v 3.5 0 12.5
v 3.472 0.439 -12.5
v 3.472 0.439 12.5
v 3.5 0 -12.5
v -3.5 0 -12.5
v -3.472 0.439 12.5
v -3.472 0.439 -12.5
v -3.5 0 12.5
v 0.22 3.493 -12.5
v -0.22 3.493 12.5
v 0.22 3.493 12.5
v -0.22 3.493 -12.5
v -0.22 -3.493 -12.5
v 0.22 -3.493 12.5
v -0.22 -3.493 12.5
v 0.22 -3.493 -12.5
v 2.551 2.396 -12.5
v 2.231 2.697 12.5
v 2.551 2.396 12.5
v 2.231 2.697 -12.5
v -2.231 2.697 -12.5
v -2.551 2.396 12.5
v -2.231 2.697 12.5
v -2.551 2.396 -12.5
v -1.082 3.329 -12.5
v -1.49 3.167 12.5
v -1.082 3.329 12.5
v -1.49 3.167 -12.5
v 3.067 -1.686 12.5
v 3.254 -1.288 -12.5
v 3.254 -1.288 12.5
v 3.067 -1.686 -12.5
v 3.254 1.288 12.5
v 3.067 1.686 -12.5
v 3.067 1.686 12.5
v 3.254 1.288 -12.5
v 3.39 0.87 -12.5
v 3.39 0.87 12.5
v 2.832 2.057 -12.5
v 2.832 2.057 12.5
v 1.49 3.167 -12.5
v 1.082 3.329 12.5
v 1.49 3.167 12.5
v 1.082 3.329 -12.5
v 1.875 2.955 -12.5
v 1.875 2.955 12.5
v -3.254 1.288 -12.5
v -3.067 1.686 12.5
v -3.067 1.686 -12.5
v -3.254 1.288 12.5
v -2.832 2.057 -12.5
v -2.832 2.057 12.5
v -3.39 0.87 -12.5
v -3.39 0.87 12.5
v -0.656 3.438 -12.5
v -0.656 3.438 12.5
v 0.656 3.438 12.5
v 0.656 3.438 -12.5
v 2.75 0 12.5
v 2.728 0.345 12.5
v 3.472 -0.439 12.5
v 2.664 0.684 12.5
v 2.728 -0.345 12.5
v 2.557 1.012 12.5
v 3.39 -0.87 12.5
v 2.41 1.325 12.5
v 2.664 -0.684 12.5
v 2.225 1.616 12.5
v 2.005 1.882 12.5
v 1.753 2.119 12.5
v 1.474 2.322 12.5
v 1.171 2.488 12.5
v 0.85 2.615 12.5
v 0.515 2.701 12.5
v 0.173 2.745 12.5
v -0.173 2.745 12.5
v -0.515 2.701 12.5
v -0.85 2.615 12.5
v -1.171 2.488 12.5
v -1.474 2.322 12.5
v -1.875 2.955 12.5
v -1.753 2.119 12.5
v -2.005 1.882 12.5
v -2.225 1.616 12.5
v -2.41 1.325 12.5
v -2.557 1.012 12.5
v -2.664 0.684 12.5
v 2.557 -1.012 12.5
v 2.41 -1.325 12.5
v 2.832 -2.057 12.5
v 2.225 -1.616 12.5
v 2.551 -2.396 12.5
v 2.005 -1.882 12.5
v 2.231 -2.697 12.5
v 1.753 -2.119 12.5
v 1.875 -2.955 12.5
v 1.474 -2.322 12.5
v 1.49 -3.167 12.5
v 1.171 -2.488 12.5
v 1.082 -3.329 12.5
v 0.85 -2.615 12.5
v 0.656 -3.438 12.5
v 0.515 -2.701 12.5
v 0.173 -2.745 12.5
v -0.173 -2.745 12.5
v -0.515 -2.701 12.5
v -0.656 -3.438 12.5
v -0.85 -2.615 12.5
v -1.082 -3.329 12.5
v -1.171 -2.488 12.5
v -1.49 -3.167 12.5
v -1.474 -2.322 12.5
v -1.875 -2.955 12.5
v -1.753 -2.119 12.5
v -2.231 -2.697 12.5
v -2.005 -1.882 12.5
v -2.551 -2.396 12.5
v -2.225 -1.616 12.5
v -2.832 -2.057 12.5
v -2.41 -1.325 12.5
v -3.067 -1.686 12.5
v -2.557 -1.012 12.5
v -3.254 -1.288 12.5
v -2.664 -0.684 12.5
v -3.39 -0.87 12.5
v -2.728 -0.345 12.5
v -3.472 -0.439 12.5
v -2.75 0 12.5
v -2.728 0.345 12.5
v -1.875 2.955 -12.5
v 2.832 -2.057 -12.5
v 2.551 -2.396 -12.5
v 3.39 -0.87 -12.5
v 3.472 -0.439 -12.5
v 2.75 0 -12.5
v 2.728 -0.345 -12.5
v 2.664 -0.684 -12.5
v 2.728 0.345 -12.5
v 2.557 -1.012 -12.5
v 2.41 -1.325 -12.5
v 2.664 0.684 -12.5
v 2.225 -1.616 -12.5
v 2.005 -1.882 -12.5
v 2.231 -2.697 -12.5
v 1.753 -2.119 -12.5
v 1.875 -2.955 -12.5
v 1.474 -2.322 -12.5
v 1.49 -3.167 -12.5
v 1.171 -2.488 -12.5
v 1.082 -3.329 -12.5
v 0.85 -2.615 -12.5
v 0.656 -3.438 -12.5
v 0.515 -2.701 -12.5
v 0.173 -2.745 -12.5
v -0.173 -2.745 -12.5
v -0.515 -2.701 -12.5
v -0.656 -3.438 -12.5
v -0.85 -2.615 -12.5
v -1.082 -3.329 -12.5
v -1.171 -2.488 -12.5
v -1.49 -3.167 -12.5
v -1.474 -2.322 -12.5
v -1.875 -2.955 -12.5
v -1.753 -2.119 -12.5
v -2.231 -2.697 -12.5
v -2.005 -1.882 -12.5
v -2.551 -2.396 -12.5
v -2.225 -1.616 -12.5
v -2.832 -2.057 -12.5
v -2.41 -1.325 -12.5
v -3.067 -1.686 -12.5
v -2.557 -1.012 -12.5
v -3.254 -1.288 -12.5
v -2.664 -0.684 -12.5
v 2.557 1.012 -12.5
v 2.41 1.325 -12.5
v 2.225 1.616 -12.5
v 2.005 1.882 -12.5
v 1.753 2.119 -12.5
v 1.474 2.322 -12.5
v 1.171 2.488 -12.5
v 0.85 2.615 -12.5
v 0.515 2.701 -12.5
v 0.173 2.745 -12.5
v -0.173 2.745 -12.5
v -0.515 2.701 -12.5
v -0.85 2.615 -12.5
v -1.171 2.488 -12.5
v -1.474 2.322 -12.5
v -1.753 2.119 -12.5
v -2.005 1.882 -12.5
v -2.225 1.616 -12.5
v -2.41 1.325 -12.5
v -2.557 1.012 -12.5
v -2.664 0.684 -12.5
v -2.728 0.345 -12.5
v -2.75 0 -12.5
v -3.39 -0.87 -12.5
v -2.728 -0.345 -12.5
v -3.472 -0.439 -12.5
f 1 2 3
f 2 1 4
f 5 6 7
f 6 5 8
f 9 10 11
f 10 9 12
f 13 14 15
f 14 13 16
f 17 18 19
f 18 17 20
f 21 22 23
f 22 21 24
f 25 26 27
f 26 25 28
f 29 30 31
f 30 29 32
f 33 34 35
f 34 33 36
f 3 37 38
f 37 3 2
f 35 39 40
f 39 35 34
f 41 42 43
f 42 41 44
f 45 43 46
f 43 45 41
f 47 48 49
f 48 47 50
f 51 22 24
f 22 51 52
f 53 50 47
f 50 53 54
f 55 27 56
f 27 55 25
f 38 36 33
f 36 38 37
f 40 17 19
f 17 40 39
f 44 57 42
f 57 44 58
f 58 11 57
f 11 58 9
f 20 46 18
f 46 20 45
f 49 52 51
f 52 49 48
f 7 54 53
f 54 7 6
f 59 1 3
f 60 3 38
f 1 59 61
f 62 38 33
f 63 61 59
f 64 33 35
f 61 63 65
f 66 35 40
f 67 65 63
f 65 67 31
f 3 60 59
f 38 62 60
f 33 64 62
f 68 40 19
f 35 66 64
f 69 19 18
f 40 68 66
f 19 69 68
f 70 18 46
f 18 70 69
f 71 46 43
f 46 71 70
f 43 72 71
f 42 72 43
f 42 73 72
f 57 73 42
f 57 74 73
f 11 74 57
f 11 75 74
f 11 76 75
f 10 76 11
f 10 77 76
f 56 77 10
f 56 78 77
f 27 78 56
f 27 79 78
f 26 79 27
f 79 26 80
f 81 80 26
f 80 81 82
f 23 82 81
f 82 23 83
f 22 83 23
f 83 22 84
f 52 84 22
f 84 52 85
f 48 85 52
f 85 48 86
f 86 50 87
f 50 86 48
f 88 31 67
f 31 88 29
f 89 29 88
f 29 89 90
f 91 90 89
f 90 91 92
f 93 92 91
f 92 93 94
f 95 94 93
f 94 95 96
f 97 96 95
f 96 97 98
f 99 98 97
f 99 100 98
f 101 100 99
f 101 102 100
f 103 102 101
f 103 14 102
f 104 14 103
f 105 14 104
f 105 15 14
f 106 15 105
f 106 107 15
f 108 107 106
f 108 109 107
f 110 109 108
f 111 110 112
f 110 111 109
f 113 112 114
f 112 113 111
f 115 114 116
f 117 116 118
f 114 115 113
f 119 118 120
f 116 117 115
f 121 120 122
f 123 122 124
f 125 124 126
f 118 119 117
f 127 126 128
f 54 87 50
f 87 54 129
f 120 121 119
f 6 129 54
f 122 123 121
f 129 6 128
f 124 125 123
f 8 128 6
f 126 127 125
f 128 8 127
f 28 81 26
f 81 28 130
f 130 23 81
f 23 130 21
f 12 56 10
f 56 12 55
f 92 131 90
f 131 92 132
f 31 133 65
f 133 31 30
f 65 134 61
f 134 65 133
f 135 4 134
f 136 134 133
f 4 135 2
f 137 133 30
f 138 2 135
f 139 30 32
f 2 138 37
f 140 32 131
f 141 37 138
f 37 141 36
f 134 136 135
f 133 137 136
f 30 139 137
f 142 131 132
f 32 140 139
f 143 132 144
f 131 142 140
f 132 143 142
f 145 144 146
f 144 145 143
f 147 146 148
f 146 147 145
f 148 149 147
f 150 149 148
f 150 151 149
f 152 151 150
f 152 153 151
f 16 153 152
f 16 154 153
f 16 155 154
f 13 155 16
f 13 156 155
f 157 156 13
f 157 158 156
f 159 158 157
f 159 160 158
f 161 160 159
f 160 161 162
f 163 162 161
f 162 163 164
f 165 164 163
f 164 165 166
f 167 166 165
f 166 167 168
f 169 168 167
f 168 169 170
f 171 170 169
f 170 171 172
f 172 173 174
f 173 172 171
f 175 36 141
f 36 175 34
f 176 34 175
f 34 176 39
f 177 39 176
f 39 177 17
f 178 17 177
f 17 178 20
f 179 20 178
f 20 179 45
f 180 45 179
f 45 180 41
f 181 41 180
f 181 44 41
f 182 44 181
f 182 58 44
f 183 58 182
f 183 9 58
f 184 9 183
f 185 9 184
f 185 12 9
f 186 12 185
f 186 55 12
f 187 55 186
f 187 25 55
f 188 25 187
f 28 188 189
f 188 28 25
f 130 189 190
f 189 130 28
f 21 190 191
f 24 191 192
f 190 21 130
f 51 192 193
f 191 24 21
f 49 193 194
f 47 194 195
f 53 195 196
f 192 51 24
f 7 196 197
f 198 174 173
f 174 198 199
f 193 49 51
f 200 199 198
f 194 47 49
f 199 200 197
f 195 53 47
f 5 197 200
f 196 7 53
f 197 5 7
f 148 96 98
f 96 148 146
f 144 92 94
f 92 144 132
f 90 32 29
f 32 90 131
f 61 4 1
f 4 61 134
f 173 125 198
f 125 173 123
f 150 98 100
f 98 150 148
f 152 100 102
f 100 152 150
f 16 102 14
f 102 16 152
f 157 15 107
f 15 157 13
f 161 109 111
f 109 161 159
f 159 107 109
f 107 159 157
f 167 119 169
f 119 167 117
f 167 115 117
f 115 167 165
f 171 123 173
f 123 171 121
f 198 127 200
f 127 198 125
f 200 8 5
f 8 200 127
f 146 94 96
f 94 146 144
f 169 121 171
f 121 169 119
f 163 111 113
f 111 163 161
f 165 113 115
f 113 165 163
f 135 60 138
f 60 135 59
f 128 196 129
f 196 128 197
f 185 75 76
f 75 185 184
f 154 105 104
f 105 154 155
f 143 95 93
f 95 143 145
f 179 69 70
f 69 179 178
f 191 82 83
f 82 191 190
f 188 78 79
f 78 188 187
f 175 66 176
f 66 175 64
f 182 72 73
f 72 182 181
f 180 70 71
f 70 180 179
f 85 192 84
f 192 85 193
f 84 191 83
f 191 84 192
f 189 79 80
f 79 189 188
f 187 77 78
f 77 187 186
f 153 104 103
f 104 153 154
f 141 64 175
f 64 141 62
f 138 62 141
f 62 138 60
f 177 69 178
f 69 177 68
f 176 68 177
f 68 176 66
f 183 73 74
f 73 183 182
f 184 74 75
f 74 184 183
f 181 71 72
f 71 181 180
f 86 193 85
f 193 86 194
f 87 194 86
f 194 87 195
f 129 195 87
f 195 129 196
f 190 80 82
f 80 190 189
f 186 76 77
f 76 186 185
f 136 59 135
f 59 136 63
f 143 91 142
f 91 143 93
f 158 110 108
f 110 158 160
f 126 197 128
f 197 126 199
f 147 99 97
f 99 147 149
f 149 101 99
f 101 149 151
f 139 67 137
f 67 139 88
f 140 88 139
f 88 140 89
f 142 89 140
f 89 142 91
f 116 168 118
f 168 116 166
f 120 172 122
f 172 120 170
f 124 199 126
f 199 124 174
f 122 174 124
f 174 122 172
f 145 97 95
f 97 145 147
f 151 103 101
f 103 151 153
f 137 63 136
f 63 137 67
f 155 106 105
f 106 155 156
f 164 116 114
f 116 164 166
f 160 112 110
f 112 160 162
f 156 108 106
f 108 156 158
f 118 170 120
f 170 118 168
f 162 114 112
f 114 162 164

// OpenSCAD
$fn = 50;


difference() {
	union() {
		translate(v = [0, 0, -12.5000000000]) {
			cylinder(h = 25, r = 3.5000000000);
		}
	}
	union() {
		translate(v = [0, 0, -100.0000000000]) {
			cylinder(h = 200, r = 2.7500000000);
		}
	}
}
